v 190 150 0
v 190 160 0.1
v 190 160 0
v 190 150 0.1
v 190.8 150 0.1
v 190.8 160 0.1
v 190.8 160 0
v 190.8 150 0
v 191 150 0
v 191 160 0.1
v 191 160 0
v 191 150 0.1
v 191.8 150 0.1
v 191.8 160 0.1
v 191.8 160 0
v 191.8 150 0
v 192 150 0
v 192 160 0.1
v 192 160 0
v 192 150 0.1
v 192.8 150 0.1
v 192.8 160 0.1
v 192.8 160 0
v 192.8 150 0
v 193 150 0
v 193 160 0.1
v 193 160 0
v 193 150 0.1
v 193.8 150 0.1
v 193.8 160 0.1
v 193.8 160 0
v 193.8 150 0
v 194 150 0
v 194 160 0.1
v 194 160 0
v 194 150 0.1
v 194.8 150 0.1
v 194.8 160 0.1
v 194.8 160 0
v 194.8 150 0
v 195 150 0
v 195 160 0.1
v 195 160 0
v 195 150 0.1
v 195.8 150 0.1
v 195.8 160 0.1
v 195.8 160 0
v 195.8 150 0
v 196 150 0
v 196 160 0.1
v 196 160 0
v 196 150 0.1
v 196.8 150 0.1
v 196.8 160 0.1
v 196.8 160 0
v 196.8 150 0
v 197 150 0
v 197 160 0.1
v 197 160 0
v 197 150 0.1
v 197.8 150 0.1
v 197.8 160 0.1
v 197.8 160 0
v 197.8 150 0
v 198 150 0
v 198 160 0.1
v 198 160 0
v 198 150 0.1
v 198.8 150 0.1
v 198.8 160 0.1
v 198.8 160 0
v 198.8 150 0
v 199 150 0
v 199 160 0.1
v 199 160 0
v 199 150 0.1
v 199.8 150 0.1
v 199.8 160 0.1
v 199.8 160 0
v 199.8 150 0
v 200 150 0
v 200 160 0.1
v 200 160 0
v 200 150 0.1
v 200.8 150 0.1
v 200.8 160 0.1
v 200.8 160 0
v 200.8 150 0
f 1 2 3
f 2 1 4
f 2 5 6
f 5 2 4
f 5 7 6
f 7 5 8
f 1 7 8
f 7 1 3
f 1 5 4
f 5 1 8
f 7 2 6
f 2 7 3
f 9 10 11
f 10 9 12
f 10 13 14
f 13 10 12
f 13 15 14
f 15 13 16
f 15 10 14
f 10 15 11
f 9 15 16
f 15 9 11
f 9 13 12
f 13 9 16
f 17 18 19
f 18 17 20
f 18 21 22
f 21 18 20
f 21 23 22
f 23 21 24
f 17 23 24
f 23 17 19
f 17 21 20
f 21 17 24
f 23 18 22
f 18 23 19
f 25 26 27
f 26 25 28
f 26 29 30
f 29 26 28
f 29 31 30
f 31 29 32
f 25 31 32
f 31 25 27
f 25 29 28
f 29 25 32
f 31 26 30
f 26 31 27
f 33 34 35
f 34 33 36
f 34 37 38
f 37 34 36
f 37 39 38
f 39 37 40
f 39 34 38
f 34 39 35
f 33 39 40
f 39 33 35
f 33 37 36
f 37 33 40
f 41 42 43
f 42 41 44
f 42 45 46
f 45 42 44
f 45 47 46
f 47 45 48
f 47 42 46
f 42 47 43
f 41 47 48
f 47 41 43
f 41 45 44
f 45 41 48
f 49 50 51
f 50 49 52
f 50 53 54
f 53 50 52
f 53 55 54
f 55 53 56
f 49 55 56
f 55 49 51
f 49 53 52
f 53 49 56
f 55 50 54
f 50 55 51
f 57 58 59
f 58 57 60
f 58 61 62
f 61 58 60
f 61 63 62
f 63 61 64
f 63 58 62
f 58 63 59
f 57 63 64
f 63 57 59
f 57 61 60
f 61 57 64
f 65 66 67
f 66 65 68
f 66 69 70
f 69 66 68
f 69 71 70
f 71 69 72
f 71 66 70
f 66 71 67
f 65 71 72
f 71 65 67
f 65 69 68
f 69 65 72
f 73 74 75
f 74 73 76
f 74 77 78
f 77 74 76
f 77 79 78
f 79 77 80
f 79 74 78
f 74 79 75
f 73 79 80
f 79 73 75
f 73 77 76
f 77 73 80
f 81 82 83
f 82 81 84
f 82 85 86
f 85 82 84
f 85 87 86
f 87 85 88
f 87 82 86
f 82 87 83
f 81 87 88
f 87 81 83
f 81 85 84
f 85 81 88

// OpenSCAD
translate([10+180,10+140,0])
        for (i = [0 : 10]){
            translate([i,0,0])
                cube(size = [0.8,10,0.1]);
    }
